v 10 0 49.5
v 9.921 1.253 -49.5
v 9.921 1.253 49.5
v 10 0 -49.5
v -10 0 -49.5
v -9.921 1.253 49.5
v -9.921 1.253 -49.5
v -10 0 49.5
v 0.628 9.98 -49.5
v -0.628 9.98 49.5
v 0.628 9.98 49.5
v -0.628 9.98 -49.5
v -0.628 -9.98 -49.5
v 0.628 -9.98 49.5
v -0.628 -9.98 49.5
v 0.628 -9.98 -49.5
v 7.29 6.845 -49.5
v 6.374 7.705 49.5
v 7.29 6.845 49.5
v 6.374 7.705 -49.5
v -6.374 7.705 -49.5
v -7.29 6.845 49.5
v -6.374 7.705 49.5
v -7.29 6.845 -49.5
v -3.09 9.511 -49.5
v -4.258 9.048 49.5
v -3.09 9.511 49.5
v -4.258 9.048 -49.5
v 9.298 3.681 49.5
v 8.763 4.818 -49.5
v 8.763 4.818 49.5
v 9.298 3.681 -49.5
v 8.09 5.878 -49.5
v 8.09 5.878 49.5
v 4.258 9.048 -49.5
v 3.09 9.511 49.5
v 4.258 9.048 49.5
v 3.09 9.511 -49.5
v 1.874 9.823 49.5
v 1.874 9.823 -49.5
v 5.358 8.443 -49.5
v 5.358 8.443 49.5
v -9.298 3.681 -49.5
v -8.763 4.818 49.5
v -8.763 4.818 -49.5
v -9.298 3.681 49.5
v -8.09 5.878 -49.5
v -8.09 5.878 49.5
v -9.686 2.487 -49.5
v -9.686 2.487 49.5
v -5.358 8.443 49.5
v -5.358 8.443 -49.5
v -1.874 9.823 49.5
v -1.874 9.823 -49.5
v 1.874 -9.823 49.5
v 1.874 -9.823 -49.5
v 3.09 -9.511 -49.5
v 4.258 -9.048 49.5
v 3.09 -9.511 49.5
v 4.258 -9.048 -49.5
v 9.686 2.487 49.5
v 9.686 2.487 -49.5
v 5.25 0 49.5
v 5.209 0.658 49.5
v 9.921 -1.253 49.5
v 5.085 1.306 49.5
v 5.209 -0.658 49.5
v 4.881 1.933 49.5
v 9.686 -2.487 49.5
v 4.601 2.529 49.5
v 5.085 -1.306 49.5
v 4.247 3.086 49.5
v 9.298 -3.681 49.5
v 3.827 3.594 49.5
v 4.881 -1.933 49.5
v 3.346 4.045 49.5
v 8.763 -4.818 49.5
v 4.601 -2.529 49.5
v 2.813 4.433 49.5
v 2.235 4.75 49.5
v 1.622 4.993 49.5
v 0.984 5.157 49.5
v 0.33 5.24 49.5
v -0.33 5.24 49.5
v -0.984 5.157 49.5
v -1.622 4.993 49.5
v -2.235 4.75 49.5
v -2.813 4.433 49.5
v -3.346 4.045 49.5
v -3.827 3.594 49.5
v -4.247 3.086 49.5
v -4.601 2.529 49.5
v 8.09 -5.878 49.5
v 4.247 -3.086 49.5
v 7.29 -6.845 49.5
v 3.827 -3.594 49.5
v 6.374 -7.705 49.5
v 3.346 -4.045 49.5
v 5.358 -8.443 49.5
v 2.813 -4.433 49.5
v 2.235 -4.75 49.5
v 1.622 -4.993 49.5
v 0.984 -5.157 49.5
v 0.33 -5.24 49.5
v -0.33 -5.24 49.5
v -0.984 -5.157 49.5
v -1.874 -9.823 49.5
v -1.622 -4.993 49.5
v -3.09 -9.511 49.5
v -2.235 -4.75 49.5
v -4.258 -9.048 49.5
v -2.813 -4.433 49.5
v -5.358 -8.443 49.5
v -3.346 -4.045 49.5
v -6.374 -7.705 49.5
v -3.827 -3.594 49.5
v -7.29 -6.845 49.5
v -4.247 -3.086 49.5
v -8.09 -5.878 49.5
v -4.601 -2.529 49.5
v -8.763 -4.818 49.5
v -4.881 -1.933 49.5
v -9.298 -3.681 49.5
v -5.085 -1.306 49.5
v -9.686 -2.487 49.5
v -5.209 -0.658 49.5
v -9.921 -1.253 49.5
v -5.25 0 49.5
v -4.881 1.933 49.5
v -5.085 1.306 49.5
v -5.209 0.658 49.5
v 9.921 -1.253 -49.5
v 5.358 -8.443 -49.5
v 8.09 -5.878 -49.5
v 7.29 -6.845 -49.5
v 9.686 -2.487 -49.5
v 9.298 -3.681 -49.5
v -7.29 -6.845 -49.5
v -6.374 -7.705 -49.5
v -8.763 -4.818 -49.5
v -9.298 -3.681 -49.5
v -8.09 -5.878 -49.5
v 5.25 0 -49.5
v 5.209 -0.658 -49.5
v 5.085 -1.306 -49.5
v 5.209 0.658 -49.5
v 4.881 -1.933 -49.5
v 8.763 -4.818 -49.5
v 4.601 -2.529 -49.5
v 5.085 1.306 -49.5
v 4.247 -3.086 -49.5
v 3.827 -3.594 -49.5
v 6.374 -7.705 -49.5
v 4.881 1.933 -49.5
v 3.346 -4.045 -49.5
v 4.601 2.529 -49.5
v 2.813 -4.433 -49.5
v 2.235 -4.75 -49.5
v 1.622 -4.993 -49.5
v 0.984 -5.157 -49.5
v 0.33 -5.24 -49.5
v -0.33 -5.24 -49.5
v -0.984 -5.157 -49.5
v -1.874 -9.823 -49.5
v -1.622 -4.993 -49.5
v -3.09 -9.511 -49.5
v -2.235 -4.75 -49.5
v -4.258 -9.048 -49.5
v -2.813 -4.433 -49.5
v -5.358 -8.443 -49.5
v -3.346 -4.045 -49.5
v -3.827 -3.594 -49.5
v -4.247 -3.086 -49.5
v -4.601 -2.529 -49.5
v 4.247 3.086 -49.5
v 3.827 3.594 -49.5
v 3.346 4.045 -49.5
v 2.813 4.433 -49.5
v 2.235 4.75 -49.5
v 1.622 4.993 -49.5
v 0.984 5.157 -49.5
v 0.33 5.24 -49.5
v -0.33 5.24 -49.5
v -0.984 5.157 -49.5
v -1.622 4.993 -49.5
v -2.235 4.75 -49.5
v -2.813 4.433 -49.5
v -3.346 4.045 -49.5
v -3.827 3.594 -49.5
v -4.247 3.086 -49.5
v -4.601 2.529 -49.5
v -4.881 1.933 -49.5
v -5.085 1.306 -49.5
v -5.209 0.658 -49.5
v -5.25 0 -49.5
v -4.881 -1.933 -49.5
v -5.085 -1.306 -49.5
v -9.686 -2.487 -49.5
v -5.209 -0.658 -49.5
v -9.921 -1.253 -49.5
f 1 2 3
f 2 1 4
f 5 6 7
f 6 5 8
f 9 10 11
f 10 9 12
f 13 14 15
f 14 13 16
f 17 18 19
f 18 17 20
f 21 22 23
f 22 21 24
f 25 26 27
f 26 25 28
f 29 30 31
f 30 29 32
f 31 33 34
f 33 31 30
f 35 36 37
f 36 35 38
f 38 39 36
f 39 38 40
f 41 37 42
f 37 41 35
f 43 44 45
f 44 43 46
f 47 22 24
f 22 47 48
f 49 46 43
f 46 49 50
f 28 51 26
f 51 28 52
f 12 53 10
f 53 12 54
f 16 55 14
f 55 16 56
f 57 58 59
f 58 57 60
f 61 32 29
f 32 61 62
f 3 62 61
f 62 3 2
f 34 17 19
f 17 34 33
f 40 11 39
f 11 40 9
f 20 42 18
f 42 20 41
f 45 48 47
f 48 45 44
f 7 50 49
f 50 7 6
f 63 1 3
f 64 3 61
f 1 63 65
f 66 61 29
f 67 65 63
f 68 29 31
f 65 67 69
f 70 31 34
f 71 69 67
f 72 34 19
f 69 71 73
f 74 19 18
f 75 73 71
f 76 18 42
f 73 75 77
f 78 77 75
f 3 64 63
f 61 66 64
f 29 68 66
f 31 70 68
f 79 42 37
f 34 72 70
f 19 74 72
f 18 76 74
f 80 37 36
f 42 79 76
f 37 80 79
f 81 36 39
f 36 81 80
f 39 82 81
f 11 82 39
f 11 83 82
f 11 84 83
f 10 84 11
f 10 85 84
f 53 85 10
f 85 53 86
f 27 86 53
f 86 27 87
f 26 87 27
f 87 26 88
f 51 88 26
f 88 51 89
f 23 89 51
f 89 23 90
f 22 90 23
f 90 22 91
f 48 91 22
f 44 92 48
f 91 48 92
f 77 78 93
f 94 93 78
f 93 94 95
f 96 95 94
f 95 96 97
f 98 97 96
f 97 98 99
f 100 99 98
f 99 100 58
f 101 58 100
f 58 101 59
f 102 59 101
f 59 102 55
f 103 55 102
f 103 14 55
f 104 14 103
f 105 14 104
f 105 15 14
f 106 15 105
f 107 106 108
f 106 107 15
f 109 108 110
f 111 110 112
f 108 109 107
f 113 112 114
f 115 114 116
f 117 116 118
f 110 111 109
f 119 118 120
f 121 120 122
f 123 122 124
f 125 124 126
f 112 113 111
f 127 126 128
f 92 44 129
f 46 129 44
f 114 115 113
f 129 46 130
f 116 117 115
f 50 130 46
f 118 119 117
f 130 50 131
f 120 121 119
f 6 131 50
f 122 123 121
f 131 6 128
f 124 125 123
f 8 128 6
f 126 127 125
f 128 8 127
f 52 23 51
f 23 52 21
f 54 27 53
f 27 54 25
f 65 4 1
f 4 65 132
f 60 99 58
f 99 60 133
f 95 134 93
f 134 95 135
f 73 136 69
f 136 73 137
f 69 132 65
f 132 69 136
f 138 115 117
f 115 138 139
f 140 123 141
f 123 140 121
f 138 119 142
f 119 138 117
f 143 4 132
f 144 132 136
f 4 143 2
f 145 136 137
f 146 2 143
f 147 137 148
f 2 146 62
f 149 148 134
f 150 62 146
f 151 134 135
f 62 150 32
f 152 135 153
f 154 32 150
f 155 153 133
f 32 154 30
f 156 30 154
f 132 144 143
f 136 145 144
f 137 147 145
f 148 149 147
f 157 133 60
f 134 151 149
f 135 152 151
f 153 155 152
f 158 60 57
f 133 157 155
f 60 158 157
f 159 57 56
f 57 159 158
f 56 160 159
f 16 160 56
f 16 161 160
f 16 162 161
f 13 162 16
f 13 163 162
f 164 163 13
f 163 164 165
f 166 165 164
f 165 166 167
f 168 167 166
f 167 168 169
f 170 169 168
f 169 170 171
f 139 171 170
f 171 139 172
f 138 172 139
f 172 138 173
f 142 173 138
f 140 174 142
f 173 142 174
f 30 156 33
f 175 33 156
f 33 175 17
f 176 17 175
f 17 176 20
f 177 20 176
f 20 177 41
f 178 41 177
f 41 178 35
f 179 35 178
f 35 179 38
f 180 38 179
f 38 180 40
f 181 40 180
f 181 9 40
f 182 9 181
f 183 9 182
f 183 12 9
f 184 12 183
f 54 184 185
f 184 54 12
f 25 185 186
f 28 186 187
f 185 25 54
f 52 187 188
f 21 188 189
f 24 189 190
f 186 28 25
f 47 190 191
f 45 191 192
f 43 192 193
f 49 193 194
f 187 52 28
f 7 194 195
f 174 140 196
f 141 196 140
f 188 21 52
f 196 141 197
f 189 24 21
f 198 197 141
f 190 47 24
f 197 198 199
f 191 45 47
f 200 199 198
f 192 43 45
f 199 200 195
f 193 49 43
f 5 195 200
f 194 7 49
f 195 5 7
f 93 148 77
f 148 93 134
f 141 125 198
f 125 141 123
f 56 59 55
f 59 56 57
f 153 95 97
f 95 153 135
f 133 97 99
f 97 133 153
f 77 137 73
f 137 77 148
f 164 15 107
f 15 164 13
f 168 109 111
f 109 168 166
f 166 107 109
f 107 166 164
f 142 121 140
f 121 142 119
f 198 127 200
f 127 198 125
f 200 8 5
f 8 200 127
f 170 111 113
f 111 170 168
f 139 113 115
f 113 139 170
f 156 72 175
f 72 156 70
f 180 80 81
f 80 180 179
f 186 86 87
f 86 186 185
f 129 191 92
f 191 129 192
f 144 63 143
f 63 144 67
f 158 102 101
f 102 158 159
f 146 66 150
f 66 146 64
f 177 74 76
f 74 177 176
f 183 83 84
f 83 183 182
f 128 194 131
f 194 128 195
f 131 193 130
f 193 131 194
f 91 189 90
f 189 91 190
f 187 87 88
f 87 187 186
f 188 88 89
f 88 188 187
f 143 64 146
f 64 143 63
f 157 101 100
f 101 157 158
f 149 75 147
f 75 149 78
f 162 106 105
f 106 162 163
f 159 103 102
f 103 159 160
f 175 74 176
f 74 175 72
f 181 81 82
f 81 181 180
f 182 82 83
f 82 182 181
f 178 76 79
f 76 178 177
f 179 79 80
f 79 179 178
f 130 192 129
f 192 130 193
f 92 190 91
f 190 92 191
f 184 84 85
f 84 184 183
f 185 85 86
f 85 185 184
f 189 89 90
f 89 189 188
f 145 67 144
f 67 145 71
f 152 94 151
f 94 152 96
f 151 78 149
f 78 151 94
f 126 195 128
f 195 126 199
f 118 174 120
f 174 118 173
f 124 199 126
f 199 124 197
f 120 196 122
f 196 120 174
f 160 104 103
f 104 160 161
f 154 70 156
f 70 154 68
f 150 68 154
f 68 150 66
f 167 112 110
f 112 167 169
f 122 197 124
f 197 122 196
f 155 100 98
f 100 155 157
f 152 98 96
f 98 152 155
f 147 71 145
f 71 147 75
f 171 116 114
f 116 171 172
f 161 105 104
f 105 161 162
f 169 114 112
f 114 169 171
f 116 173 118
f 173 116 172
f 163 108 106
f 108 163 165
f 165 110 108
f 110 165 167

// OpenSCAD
$fn = 50;


difference() {
	union() {
		translate(v = [0, 0, -49.5000000000]) {
			cylinder(h = 99, r = 10.0000000000);
		}
	}
	union() {
		translate(v = [0, 0, -100.0000000000]) {
			cylinder(h = 200, r = 5.2500000000);
		}
	}
}
